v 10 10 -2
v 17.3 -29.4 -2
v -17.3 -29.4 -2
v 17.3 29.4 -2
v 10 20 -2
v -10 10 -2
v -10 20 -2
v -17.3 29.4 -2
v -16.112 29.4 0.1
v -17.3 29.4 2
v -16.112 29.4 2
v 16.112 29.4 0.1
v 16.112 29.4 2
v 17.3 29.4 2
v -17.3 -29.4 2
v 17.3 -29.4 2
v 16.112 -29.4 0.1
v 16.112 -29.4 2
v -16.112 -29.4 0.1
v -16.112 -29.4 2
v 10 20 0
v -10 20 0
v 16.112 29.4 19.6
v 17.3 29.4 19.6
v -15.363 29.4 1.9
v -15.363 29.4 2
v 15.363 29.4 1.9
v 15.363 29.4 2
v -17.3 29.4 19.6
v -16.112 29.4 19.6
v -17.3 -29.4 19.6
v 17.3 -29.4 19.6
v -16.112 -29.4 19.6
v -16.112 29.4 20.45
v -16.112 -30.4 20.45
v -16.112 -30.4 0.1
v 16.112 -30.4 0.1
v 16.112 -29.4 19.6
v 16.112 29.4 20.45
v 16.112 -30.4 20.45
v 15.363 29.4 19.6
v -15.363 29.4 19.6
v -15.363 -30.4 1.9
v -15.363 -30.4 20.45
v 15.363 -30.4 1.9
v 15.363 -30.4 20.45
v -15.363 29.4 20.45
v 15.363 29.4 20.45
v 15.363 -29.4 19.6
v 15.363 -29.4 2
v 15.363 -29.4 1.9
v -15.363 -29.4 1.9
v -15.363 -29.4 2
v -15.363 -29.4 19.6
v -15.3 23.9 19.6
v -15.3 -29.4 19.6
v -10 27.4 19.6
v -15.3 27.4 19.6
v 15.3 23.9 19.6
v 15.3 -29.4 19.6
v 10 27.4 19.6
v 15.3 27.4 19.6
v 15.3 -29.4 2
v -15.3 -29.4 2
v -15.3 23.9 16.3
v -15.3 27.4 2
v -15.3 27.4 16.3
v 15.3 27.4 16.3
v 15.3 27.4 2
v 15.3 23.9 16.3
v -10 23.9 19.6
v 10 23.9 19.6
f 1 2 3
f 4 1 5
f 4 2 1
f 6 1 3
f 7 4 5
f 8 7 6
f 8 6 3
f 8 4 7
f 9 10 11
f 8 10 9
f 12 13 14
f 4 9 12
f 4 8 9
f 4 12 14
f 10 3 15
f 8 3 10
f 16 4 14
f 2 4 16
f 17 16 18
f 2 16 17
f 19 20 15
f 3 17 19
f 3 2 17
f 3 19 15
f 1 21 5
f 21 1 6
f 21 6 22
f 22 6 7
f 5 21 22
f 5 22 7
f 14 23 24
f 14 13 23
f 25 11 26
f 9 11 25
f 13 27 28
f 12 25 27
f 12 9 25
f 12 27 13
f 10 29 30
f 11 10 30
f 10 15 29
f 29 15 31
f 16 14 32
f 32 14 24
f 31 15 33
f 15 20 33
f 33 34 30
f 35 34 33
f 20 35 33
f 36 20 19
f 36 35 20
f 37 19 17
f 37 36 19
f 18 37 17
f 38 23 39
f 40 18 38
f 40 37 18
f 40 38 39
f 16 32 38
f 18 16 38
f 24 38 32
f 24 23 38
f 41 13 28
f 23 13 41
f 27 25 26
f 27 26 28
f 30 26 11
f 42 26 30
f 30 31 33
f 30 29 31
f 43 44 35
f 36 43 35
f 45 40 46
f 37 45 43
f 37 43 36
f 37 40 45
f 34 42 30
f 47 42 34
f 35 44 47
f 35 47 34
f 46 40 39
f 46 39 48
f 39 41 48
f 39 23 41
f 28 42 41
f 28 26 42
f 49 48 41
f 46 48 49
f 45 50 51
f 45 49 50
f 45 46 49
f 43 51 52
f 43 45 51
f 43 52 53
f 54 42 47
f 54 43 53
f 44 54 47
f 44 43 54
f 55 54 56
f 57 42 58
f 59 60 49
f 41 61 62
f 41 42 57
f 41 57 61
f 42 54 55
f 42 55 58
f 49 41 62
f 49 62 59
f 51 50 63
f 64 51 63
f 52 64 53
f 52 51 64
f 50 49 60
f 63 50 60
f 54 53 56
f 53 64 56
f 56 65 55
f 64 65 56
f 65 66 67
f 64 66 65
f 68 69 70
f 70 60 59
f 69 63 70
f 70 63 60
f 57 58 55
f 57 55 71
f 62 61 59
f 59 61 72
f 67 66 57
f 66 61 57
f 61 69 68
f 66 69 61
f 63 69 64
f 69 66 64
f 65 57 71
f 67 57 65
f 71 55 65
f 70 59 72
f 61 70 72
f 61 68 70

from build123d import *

# Parameters (mm, degrees)
SKETCH_W     = 34.6
SKETCH_H     = 58.8
PAD_DEPTH    = 4
PAD001_DEPTH = 17.6
PAD003_DEPTH = 59.8
PAD004_DEPTH = 3.5
POCKET_DEPTH = 10


with BuildPart() as part:
    # Sketch → Pad (new body)
    with BuildSketch(Plane.XY.offset(-2)):
        Rectangle(SKETCH_W, SKETCH_H)
    extrude(amount=PAD_DEPTH)

    # Sketch001 → Pad001 (join)
    with BuildSketch(Plane.XY.offset(2)):
        Polygon((-15.3, -29.4), (-15.3, 27.4), (15.3, 27.4), (15.3, -29.4), (17.3, -29.4), (17.3, 29.4), (-17.3, 29.4), (-17.3, -29.4), align=None)
    extrude(amount=PAD001_DEPTH)

    # Sketch003 → Pad003 (join)
    with BuildSketch(Plane.XZ.offset(30.4)):
        Polygon((-15.3625, 20.45), (-16.1125, 20.45), (-16.1125, 0.1), (16.1125, 0.1), (16.1125, 20.45), (15.3625, 20.45), (15.3625, 1.9), (-15.3625, 1.9), align=None)
    extrude(amount=-PAD003_DEPTH)

    # Sketch004 → Pad004 (join)
    with BuildSketch(Plane.XZ.offset(-27.4)):
        Polygon((-15.3, 19.6), (-15.3, 16.3), (-10, 19.6), align=None)
        Polygon((15.3, 19.6), (15.3, 16.3), (10, 19.6), align=None)
    extrude(amount=PAD004_DEPTH)

    # Sketch005 → Pocket (cut, symmetric)
    with BuildSketch(Plane.YZ):
        Polygon((20, 0), (20, -2), (10, -2), align=None)
    extrude(amount=POCKET_DEPTH, both=True, mode=Mode.SUBTRACT)


solid = part.part
